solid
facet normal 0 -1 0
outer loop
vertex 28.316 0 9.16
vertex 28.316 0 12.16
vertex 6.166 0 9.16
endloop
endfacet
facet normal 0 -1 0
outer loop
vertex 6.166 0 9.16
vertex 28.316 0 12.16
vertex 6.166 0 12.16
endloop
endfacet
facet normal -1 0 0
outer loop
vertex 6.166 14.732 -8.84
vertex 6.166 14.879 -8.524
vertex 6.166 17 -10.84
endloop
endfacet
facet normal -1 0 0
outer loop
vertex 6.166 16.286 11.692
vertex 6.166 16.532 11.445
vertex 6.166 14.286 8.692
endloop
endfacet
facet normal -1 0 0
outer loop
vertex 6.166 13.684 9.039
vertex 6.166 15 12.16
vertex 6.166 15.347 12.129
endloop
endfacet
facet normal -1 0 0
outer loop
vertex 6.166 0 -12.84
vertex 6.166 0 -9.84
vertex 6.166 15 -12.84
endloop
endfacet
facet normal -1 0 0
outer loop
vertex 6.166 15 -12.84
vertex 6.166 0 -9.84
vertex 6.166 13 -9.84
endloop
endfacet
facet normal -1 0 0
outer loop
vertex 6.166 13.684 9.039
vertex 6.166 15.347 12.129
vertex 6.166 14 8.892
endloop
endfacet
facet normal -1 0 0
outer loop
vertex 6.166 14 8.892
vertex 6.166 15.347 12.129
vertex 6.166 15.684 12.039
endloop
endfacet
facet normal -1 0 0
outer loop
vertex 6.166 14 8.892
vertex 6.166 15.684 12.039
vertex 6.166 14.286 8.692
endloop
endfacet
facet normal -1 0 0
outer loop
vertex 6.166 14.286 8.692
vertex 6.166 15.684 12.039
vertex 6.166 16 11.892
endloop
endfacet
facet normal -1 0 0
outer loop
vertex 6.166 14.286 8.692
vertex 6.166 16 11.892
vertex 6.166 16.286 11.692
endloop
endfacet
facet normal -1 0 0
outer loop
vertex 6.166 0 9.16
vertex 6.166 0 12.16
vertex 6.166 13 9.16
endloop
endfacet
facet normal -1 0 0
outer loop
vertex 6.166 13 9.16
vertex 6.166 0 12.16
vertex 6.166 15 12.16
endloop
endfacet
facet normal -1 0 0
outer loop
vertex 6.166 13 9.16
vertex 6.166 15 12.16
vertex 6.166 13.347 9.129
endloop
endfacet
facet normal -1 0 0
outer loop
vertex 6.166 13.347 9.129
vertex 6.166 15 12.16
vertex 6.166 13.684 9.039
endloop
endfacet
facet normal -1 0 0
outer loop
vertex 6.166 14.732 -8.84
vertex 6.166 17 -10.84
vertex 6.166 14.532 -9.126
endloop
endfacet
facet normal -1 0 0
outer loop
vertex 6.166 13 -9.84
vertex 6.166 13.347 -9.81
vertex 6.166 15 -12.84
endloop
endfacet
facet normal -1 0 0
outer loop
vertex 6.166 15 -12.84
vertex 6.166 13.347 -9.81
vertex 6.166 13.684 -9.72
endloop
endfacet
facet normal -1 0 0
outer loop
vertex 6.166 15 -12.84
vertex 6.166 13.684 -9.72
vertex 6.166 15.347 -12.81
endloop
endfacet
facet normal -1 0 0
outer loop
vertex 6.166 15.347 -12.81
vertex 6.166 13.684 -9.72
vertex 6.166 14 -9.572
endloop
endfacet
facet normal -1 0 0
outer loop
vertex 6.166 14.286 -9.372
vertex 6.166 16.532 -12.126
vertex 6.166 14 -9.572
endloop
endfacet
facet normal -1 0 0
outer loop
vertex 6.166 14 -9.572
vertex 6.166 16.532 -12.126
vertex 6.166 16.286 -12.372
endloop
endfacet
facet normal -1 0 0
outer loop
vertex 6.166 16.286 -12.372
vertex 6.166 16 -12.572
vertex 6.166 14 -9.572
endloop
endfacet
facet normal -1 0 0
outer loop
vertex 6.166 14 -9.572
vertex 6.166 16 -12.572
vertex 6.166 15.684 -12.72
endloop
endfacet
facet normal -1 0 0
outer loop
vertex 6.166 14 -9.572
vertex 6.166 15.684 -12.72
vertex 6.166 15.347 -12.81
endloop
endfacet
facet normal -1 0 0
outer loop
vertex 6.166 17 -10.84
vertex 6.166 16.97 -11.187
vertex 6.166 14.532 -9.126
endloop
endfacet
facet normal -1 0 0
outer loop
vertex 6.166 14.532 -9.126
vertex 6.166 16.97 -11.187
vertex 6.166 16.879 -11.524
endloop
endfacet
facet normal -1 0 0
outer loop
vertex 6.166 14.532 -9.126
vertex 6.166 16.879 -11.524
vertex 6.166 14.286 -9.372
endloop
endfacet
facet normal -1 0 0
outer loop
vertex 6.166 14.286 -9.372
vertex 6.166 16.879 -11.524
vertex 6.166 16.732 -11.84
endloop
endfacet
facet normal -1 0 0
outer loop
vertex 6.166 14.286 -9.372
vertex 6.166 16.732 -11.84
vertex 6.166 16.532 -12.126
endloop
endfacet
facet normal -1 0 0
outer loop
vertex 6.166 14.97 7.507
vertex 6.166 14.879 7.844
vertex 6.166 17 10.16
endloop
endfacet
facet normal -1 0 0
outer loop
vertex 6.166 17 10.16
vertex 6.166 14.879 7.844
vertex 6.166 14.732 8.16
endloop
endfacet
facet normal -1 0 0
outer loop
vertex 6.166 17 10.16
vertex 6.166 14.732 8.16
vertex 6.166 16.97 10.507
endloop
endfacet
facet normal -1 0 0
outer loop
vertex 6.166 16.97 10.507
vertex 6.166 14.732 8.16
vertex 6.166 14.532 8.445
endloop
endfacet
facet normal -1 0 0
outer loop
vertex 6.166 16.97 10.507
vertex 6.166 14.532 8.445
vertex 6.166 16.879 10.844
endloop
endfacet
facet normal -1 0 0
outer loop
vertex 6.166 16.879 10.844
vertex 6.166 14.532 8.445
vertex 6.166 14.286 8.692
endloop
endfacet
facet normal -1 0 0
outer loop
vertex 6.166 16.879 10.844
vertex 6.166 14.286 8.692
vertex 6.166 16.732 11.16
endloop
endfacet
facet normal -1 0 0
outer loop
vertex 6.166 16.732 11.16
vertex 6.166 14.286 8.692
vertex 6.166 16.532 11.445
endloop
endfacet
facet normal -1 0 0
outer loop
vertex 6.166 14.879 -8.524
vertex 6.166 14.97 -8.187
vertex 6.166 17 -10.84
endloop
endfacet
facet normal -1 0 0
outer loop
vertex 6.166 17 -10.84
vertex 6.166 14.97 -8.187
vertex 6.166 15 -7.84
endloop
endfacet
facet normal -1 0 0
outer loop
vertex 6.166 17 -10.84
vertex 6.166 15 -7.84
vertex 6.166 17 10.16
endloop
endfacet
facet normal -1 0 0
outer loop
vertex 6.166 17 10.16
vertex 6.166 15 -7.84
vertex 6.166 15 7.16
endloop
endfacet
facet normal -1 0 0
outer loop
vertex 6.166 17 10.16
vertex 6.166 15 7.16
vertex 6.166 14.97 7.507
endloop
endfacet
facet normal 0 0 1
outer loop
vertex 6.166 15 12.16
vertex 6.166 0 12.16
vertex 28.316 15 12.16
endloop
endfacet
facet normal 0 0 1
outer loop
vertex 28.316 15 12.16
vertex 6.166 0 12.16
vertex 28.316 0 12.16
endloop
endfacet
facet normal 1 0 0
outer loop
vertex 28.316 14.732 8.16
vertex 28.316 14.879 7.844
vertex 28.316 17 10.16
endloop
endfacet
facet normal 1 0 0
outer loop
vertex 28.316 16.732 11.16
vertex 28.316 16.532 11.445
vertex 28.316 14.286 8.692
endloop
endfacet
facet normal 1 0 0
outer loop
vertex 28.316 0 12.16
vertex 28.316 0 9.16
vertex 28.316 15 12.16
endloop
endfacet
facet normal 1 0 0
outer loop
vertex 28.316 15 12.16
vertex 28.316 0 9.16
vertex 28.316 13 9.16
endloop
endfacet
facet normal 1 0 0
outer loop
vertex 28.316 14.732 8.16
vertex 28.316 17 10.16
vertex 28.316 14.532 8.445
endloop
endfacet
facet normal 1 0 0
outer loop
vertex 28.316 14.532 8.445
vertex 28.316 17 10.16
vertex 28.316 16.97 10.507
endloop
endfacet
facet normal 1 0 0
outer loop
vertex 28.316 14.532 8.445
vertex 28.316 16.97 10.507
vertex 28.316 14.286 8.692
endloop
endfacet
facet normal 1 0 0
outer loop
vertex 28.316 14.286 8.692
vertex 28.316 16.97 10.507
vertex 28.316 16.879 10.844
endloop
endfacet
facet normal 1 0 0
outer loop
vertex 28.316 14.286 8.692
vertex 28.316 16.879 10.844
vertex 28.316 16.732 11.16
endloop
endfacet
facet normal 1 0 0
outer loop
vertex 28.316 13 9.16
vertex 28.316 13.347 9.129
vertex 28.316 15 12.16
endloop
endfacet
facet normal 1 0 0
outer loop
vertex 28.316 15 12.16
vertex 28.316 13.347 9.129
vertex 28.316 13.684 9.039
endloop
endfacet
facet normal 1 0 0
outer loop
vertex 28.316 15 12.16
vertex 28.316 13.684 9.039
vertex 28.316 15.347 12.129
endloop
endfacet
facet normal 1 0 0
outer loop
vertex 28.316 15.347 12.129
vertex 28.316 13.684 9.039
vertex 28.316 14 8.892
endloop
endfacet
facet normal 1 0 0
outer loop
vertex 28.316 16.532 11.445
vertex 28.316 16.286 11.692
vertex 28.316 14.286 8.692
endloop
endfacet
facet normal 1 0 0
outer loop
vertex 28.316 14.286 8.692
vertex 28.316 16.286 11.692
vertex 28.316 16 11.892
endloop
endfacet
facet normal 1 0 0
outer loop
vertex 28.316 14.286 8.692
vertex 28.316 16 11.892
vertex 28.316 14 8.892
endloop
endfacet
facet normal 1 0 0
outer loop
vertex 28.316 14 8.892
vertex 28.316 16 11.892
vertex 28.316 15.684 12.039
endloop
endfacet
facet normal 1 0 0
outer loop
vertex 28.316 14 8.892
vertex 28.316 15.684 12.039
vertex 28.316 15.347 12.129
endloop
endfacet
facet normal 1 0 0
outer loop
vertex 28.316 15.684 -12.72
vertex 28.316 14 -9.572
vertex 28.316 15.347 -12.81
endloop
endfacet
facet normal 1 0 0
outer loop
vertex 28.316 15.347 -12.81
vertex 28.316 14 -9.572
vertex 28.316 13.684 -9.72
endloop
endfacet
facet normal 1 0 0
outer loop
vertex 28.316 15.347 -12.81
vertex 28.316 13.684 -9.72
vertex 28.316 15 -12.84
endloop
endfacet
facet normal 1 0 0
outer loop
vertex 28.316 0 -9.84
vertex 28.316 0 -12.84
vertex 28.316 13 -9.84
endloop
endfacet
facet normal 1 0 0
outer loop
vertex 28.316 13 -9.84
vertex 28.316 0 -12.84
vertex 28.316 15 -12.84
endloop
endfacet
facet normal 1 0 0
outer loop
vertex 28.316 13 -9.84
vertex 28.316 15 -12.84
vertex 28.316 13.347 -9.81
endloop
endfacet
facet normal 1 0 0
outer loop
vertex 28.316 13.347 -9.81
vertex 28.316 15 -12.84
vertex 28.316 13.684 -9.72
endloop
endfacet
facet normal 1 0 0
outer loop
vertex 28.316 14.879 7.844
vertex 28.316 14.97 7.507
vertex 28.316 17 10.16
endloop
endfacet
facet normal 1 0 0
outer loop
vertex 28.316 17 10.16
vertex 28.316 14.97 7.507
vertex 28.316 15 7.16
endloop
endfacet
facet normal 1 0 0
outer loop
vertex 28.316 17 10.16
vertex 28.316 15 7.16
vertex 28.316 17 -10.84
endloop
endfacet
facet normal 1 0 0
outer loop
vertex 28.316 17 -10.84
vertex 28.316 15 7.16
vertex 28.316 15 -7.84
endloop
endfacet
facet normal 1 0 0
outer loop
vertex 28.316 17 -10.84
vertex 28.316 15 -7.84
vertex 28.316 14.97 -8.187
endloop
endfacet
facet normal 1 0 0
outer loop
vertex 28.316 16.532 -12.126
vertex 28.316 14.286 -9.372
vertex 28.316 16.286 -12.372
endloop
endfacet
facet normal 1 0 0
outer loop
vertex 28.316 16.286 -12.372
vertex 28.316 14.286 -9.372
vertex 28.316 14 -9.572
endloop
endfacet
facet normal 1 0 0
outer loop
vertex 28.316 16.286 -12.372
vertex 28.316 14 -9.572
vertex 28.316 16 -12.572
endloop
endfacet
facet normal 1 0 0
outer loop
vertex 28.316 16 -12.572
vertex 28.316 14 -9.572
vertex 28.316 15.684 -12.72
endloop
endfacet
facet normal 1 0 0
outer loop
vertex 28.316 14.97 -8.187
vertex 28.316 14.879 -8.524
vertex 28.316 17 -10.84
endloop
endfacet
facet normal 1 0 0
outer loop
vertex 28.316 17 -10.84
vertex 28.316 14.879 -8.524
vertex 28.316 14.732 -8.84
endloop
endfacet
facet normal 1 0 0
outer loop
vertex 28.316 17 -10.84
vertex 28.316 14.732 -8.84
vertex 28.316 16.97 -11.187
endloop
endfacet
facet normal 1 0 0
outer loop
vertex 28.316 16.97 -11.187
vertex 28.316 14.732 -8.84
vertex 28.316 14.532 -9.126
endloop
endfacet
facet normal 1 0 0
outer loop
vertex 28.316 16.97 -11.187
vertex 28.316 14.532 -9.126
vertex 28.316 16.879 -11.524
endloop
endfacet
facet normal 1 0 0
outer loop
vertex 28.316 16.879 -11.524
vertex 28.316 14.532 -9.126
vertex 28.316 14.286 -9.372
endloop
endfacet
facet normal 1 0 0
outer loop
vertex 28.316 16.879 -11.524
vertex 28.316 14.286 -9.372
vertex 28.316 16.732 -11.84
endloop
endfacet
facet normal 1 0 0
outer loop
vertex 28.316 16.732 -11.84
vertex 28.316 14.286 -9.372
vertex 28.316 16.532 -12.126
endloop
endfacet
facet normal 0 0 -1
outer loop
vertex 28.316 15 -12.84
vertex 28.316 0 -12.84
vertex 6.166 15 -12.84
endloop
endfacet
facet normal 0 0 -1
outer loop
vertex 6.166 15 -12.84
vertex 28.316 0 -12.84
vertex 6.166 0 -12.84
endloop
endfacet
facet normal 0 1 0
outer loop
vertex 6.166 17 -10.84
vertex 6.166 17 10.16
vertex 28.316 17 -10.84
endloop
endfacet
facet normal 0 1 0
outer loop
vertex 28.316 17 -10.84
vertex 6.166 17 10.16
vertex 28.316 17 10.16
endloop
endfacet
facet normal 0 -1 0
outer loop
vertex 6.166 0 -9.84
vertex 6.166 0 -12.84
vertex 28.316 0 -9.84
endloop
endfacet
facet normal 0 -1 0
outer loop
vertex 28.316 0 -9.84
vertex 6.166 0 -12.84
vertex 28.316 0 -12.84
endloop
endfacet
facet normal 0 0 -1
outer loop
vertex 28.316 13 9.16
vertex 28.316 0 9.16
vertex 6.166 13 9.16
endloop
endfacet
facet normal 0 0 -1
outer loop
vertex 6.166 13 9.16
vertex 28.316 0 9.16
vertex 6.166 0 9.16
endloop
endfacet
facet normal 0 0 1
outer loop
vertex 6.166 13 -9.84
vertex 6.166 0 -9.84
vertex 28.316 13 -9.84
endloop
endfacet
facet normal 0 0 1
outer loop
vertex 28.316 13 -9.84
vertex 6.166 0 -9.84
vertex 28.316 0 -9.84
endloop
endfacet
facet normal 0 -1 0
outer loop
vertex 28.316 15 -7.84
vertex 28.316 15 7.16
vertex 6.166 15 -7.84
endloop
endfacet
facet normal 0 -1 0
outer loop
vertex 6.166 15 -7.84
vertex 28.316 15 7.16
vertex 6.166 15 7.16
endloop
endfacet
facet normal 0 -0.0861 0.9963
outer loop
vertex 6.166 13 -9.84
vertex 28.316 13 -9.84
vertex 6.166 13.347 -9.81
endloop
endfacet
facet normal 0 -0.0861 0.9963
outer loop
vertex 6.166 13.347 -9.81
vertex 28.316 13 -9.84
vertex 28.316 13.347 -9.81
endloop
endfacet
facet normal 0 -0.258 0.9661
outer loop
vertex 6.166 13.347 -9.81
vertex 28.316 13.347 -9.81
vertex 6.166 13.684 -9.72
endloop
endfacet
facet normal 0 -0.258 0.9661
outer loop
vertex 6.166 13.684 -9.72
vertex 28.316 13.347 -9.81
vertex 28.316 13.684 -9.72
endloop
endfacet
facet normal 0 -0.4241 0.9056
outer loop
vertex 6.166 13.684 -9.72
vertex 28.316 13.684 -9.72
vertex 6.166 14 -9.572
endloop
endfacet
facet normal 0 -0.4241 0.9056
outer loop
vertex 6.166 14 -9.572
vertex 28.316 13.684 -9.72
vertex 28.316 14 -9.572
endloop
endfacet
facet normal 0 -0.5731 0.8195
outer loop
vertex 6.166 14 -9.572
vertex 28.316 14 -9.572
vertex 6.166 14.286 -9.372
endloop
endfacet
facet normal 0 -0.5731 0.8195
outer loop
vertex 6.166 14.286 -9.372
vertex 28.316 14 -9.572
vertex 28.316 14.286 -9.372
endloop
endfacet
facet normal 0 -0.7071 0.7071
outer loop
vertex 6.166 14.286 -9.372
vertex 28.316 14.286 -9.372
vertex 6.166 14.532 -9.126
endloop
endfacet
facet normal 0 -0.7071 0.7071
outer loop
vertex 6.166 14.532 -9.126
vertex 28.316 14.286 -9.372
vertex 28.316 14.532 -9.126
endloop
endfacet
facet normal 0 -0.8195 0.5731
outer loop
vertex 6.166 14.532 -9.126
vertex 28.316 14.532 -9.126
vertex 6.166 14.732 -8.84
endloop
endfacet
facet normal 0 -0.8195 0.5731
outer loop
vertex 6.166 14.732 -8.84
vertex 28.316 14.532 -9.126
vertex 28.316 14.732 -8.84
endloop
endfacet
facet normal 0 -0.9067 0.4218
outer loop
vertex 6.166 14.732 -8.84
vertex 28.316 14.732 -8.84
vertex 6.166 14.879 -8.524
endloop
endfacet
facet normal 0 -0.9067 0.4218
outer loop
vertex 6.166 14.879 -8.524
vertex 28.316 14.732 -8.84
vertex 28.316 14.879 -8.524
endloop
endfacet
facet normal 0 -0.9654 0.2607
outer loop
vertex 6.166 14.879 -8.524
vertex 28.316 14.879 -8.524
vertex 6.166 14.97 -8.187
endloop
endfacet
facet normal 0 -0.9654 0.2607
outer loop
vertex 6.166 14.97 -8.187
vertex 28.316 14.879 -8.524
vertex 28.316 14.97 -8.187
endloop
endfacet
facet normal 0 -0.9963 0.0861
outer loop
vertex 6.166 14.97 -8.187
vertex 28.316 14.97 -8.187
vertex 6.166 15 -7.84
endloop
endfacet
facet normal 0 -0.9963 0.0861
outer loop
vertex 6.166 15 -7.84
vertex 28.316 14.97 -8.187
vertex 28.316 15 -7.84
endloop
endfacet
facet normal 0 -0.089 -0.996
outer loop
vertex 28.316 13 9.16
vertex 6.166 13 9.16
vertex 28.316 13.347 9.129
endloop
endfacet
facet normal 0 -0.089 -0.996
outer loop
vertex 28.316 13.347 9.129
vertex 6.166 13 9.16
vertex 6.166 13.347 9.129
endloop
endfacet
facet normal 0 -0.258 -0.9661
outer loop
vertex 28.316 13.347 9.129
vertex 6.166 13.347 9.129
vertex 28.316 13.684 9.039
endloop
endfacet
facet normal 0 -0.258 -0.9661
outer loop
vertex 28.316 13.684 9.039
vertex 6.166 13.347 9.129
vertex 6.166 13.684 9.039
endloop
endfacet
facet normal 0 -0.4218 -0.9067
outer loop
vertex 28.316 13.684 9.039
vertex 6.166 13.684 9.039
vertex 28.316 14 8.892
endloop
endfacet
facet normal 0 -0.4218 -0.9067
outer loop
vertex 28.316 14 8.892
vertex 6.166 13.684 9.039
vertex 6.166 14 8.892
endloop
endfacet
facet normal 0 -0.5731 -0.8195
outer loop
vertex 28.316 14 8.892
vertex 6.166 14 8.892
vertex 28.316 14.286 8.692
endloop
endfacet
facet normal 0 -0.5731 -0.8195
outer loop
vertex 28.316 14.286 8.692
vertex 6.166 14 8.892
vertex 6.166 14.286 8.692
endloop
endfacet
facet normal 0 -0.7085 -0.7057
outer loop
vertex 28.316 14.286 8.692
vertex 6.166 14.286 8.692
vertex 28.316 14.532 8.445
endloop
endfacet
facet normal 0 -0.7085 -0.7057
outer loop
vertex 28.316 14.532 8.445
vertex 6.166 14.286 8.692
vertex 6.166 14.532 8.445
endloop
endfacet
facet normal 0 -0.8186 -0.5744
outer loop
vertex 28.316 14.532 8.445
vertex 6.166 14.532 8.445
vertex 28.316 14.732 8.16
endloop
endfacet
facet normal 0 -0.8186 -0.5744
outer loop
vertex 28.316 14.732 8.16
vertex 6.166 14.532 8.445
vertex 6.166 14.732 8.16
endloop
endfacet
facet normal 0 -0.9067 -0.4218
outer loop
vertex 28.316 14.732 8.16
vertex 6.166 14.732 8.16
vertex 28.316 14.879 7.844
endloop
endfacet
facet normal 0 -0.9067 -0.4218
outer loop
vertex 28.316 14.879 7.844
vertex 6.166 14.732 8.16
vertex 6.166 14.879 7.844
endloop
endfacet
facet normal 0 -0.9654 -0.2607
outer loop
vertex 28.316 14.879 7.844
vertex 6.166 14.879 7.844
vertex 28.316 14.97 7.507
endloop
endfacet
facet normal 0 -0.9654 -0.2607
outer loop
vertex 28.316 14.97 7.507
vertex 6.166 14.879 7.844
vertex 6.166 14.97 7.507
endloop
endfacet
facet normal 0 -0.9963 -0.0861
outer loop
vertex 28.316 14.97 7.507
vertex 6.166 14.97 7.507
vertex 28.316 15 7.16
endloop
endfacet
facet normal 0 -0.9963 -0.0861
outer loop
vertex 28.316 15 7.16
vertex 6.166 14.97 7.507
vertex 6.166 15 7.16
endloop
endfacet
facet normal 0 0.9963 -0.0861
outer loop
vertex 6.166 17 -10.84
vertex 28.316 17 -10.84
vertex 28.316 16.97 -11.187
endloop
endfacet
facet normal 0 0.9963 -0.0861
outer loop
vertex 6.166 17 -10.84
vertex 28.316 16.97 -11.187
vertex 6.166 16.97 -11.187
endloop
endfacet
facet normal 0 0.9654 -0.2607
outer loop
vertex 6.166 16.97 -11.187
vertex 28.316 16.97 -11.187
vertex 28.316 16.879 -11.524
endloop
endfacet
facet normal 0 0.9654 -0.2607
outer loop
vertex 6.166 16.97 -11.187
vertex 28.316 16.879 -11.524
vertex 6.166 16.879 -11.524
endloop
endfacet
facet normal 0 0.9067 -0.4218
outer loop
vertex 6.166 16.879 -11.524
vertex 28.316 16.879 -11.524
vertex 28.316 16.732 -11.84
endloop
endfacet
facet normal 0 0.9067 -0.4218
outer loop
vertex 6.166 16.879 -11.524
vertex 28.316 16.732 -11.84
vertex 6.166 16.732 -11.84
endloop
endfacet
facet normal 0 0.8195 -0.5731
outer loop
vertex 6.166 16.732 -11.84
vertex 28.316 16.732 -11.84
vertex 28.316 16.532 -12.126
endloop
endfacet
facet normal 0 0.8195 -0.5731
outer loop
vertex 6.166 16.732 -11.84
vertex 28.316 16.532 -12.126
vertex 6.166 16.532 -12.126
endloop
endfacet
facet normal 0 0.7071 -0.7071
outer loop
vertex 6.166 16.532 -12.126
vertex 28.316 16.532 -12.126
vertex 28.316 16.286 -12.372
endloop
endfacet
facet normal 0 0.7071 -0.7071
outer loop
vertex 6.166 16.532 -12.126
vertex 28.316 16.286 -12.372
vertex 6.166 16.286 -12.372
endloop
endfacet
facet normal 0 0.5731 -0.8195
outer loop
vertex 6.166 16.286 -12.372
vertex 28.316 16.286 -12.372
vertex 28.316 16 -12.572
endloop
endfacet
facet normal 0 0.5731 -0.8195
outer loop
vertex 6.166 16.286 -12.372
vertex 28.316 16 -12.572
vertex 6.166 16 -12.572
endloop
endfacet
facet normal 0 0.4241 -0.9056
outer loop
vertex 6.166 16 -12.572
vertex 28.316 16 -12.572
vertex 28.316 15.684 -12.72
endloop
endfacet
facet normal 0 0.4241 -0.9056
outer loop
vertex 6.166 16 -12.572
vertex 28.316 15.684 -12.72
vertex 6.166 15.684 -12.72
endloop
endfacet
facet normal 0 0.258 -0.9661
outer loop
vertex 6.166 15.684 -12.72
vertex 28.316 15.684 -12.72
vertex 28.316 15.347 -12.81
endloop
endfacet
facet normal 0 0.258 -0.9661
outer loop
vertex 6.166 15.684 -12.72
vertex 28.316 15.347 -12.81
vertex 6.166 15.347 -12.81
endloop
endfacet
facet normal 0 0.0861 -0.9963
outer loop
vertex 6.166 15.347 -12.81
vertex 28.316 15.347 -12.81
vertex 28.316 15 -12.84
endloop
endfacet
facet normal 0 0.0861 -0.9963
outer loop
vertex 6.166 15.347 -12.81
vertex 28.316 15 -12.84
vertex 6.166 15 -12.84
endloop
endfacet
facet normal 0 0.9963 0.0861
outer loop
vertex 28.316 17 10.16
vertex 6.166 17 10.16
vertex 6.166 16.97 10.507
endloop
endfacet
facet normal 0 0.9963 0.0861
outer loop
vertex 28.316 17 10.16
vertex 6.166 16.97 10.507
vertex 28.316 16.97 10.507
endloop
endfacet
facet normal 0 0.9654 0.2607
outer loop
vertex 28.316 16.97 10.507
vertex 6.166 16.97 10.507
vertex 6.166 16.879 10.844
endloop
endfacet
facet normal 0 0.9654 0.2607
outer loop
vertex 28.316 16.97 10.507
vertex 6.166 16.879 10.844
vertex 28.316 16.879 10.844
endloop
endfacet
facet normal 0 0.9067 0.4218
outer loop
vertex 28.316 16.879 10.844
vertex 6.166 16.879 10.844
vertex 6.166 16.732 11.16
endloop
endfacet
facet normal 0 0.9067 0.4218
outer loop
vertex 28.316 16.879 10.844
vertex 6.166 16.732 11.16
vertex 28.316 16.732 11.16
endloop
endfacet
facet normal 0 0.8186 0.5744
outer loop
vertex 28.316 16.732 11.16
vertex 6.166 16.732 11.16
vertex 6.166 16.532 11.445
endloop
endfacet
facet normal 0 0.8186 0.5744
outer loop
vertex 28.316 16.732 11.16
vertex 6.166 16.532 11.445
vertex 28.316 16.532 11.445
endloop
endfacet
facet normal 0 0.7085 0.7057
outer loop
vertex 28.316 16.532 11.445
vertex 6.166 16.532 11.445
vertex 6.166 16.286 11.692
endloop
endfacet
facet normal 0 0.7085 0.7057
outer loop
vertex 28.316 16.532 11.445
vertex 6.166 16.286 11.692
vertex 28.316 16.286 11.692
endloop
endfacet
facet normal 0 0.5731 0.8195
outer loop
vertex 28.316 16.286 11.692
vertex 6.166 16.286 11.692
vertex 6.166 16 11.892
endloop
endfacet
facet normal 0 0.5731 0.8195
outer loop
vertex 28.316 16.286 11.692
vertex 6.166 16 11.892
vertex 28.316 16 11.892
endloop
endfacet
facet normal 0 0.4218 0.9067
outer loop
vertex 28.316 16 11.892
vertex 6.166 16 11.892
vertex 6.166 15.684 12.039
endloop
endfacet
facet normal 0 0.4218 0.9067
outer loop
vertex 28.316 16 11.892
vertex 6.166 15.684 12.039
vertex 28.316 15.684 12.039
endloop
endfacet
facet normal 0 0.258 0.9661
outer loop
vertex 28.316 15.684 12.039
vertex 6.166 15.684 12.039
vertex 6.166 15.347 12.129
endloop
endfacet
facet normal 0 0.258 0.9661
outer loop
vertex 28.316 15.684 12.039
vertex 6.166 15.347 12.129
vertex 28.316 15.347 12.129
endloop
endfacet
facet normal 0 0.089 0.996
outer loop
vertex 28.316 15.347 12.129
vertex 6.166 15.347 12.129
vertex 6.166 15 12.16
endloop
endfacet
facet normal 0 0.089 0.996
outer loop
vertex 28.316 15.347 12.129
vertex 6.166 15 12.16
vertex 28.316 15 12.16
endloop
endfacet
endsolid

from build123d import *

# Parameters (mm, degrees)
ESQUISSE2_W             = 22.15
ESQUISSE2_H             = 25
BOSS_EXTRU_1_DEPTH      = 17
ESQUISSE3_W             = 22.15
ESQUISSE3_H             = 19
ENL_V_MAT_EXTRU_1_DEPTH = 15
CONG_1_R                = 2
CONG_2_R                = 2


with BuildPart() as part:
    # Esquisse2 → Boss.-Extru.1 (new body)
    with BuildSketch(Plane(origin=(0, 0, 0), x_dir=(1, 0, 0), z_dir=(0, 1, 0))):
        with Locations((17.241326531, 0.340136054)):
            Rectangle(ESQUISSE2_W, ESQUISSE2_H)
    extrude(amount=BOSS_EXTRU_1_DEPTH)

    # Esquisse3 → Enlèv. mat.-Extru.1 (cut)
    with BuildSketch(Plane.XZ):
        with Locations((17.241326531, -0.340136054)):
            Rectangle(ESQUISSE3_W, ESQUISSE3_H)
    extrude(amount=-ENL_V_MAT_EXTRU_1_DEPTH, mode=Mode.SUBTRACT)

    # Congé1
    cong_1_edges = [part.edges().sort_by_distance(p)[0] for p in [
        (17.241326531, 15, 9.159863946),
        (17.241326531, 15, -9.840136054),
    ]]
    fillet(cong_1_edges, radius=CONG_1_R)

    # Congé2
    cong_2_edges = [part.edges().sort_by_distance(p)[0] for p in [
        (17.241326531, 17, -12.840136054),
        (17.241326531, 17, 12.159863946),
    ]]
    fillet(cong_2_edges, radius=CONG_2_R)


solid = part.part
